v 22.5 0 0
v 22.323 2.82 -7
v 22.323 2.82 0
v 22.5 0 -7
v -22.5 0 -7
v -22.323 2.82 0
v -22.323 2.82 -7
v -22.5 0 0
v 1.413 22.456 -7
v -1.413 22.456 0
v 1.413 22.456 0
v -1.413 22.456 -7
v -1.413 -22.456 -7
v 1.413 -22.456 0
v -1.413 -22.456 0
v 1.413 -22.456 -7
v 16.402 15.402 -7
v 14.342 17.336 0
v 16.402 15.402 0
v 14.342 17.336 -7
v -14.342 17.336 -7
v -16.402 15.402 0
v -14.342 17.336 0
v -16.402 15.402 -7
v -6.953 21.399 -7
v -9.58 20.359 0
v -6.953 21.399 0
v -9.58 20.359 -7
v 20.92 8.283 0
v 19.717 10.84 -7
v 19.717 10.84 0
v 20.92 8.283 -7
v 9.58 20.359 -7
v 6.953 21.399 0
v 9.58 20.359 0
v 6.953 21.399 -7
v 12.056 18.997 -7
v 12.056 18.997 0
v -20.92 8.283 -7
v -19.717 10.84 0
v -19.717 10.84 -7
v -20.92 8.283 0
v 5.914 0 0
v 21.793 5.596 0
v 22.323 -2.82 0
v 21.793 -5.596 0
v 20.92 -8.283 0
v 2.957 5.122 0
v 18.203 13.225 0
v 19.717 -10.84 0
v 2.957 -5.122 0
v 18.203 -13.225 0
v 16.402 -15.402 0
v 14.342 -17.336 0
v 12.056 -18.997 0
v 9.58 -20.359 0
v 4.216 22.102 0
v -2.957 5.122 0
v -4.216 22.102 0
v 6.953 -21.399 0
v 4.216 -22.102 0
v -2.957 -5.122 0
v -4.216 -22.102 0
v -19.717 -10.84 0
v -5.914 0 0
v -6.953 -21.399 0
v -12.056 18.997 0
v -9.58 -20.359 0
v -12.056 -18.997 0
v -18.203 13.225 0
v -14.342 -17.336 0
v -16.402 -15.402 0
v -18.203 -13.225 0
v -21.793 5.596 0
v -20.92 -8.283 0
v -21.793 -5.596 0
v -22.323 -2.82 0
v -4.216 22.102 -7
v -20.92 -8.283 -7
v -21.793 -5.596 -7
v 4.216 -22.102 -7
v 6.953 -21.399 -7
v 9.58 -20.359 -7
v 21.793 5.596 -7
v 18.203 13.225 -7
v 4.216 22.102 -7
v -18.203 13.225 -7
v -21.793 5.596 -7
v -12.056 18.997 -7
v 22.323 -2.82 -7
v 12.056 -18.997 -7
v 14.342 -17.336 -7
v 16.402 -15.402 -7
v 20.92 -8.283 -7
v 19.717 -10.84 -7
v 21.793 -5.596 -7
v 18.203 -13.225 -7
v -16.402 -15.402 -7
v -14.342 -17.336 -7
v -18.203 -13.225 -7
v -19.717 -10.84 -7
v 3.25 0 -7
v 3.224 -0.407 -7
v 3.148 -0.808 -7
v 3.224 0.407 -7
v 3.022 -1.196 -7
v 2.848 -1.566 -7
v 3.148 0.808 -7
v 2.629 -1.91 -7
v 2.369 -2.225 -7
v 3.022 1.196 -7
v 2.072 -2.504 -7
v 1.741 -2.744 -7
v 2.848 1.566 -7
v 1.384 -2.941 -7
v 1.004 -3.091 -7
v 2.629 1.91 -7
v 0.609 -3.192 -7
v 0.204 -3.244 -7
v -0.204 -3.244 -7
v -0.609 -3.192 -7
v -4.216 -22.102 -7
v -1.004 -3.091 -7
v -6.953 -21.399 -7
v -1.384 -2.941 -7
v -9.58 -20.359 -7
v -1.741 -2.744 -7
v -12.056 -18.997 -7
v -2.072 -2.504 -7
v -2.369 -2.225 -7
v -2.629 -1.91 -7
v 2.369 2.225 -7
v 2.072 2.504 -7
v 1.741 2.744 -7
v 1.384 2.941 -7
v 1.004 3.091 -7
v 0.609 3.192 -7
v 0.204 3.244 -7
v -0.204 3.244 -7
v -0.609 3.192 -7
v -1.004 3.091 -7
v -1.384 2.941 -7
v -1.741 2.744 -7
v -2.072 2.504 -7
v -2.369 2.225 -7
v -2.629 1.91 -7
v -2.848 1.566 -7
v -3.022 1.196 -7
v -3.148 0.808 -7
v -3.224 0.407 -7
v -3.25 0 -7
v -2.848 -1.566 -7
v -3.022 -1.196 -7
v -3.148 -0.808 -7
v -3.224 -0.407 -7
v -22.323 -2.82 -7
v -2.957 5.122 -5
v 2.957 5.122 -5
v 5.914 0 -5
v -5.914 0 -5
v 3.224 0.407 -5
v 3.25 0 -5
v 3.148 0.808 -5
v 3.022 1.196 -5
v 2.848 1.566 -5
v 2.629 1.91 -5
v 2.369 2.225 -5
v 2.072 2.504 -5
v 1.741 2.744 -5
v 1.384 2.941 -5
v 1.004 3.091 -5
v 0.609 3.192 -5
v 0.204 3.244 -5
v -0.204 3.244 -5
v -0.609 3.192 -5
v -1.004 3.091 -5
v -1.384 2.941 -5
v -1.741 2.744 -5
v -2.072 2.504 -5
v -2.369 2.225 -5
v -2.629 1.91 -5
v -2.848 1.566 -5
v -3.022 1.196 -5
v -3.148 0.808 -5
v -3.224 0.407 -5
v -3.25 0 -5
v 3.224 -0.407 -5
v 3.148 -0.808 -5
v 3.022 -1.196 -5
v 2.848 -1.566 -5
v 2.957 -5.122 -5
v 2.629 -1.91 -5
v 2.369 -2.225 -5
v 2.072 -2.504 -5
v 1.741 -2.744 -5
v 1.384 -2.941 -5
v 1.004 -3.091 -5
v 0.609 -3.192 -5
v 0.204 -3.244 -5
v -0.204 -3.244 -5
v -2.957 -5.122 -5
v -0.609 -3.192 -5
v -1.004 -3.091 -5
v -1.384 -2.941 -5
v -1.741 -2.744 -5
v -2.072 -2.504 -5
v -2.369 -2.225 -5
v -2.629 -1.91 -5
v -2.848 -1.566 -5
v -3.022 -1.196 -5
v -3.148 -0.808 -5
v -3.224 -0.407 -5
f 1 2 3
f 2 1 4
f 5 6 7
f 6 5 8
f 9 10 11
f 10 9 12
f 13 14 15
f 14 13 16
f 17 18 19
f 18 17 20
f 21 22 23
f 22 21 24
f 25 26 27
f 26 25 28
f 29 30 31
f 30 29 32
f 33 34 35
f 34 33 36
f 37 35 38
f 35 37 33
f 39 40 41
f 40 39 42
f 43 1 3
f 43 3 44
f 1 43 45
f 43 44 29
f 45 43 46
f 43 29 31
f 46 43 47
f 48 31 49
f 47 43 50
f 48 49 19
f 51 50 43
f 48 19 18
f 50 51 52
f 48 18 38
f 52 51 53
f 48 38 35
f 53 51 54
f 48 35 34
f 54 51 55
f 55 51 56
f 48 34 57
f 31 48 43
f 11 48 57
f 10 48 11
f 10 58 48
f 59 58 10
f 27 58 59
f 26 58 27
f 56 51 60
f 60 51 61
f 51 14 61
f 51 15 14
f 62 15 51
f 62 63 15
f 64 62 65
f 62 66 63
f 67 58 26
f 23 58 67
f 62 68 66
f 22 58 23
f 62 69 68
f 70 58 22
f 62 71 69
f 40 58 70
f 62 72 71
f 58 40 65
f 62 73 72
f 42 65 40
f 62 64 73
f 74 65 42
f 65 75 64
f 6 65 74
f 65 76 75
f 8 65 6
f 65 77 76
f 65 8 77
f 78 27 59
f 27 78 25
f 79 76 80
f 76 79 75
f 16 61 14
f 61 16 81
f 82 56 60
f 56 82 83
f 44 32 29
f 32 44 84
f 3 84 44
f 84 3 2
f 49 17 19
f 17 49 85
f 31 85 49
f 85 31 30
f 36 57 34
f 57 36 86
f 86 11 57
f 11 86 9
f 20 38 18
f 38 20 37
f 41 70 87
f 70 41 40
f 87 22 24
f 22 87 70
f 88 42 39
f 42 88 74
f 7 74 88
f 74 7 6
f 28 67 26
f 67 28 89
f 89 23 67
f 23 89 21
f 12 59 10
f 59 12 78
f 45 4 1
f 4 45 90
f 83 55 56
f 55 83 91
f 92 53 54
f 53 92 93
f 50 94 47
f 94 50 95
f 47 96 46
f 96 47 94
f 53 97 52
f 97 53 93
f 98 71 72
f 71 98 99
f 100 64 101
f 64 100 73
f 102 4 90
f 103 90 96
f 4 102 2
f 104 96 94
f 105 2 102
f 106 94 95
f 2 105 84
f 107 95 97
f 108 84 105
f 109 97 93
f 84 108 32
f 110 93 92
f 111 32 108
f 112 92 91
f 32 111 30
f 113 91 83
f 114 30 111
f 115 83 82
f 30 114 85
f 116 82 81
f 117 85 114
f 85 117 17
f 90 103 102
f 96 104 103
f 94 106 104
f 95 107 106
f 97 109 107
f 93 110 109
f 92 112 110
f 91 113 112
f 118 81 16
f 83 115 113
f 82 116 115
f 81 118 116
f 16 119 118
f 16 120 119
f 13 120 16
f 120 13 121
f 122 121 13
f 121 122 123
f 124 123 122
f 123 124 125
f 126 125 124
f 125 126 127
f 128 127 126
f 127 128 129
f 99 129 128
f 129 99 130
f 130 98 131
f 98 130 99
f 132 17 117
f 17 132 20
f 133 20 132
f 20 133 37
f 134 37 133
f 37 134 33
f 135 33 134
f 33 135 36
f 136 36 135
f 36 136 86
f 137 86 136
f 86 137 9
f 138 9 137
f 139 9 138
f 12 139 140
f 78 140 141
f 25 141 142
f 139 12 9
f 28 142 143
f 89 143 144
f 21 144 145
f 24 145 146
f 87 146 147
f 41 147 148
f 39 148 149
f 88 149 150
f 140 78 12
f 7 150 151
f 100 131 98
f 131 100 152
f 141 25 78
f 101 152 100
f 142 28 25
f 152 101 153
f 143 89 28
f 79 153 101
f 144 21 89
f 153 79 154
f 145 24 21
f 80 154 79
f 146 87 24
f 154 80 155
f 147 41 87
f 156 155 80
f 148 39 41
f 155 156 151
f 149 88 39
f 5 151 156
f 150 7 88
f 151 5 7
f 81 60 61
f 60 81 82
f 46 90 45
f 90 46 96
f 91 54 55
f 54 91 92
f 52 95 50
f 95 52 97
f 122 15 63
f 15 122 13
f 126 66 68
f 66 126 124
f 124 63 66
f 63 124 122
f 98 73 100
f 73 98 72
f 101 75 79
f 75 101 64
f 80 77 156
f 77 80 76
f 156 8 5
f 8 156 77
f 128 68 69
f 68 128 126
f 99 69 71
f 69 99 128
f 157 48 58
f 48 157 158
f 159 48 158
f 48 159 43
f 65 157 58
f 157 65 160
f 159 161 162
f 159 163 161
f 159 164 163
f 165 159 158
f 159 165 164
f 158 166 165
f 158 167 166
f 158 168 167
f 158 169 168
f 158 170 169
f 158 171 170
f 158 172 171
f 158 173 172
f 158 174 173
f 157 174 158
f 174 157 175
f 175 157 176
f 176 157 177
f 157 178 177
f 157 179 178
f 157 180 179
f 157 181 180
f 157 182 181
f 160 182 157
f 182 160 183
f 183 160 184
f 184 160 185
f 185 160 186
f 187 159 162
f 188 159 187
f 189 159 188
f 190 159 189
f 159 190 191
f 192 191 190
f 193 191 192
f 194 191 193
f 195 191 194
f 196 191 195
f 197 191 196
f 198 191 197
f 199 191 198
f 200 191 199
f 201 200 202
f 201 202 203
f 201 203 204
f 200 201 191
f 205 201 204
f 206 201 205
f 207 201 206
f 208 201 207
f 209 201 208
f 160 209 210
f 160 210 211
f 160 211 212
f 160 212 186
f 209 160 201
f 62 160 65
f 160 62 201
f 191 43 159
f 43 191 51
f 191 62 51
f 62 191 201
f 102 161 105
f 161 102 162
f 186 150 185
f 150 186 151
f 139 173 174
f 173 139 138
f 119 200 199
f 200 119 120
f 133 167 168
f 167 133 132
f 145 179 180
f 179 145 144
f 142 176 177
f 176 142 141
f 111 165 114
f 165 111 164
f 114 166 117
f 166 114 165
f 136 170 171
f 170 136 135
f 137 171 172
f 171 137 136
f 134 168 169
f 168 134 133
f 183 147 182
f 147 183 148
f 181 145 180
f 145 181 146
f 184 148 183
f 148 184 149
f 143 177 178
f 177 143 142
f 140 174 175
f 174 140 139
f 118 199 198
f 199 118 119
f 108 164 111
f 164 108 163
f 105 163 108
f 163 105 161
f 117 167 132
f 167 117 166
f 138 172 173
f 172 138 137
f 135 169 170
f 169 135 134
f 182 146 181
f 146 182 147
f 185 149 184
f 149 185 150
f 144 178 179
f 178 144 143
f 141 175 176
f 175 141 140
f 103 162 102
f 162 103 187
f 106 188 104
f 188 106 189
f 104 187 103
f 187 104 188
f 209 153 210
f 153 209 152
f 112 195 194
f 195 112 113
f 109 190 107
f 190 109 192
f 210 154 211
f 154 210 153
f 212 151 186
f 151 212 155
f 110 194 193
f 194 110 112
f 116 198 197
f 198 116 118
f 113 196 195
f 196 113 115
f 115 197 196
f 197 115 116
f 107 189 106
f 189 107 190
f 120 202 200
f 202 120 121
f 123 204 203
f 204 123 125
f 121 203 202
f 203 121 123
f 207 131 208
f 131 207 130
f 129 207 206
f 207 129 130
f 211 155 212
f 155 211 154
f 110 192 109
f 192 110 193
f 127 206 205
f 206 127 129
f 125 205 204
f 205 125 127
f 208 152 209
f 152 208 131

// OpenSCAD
$fn = 50;


difference() {
	union() {
		translate(v = [0, 0, -7.0000000000]) {
			cylinder(h = 7.0000000000, r = 22.5000000000);
		}
		translate(v = [0, 0, -8.5000000000]) {
			cylinder(h = 8.5000000000, r = 2.8750000000);
		}
	}
	union() {
		translate(v = [0, 0, 0]) {
			rotate(a = [0, 0, 0]) {
				difference() {
					union() {
						translate(v = [0, 0, -5]) {
							linear_extrude(height = 5) {
								polygon(points = [[5.9142500000, 0.0000000000], [2.9571250000, 5.1218907443], [-2.9571250000, 5.1218907443], [-5.9142500000, 0.0000000000], [-2.9571250000, -5.1218907443], [2.9571250000, -5.1218907443]]);
							}
						}
					}
					union();
				}
			}
		}
		#translate(v = [0, 0, -100.0000000000]) {
			cylinder(h = 200, r = 3.2500000000);
		}
	}
}
